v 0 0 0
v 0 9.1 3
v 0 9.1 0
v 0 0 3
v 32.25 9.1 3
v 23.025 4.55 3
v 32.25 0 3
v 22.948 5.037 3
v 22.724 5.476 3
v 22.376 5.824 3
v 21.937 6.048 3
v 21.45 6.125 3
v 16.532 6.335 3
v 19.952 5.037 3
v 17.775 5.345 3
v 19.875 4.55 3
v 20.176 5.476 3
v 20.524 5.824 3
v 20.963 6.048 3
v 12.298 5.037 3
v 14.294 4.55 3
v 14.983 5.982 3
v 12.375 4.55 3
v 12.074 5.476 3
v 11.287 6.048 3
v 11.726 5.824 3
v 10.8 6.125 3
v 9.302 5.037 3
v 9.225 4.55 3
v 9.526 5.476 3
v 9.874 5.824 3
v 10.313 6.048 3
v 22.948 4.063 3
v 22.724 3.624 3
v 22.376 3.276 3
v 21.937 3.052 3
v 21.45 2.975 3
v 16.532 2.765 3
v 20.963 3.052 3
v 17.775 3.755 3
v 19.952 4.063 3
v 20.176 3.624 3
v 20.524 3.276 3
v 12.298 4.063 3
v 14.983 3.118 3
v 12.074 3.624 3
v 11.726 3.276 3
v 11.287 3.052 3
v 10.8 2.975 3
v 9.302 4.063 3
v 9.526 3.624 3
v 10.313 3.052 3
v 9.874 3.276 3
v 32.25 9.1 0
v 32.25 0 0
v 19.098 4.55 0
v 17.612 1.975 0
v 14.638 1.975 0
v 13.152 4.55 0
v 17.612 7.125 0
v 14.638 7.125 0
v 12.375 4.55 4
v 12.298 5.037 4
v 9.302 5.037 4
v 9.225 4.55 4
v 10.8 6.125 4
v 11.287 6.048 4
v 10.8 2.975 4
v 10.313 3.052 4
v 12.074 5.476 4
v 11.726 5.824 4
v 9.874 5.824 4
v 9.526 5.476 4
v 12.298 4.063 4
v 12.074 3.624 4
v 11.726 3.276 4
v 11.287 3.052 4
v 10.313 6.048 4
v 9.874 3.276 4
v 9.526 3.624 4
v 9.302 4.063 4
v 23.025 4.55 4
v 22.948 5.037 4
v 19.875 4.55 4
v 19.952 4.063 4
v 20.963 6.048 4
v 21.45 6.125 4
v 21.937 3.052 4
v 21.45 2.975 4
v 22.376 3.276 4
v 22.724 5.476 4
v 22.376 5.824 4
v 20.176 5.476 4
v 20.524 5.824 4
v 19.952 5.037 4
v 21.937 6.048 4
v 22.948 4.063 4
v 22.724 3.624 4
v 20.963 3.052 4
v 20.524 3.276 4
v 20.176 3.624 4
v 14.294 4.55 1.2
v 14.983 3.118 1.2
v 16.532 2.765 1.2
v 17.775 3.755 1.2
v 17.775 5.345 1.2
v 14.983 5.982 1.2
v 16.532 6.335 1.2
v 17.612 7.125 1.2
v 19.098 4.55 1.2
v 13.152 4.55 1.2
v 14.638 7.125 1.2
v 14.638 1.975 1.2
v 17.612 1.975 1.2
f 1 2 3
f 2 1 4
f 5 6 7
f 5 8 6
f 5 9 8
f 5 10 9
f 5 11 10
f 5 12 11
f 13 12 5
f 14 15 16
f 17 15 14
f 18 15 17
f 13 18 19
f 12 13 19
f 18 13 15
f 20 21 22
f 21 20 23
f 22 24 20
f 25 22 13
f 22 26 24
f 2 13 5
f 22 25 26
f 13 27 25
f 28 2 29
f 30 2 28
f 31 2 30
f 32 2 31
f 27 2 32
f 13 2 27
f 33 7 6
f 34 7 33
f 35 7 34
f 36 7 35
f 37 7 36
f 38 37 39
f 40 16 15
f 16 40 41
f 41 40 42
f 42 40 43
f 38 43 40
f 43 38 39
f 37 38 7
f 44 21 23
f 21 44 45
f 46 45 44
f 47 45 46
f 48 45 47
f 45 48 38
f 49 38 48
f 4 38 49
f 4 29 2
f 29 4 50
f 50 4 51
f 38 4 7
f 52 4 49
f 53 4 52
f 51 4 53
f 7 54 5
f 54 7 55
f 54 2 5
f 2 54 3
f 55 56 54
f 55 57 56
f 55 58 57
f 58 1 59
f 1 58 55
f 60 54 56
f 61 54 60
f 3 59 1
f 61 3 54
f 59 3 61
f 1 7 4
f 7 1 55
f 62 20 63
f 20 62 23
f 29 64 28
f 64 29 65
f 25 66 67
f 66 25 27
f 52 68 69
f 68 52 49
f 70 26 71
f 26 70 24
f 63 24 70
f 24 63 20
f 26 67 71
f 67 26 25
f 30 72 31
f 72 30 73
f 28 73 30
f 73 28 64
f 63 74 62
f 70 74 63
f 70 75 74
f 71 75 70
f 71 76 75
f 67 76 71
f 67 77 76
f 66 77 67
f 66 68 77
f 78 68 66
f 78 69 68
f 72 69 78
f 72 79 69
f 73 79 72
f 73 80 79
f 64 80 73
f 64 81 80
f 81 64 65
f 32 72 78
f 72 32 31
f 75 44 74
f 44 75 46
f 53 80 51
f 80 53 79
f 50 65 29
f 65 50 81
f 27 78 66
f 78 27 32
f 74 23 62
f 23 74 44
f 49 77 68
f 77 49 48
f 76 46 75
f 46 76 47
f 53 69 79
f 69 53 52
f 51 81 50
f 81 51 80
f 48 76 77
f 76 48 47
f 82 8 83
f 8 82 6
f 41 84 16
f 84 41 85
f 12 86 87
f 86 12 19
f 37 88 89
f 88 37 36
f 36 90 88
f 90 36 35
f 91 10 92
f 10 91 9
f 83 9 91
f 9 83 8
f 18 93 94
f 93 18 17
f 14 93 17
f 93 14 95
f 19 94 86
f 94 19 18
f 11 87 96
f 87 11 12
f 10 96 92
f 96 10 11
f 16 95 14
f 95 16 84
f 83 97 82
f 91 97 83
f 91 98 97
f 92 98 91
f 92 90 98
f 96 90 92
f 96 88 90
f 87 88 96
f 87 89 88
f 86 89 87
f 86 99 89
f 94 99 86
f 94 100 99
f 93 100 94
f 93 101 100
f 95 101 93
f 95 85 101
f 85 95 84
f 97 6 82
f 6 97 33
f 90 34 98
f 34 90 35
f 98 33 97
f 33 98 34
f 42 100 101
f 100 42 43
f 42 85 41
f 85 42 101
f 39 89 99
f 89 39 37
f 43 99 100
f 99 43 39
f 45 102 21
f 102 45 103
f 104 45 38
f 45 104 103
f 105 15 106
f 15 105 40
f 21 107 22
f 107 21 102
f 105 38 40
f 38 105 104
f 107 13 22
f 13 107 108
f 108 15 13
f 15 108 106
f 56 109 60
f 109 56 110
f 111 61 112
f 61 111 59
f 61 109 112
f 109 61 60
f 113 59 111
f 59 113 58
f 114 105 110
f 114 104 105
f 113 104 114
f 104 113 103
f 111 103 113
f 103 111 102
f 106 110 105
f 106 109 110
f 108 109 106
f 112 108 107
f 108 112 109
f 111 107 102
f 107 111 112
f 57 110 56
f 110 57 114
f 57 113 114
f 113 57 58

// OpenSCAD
use <MCAD/polyholes.scad>;
// Reflow Oven Gen 2
// Mount for holding face plate nut in case cutout

mount_length = 32.25;
mount_width  =  9.10;
mount_height =  3.00;

mount_insert_length = 13.80;
mount_insert_d      =  3.15;
mount_insert_h      =  1.00;
mount_hole_d        =  3.30;
mount_nut_trap_d    =  5.15;
mount_nut_trap_h    =  2.20;

module hex_nut() {
    n = 6;  // hex nut
    cylinder(h = h, r = r / cos (180 / n), $fn = n);
}

difference() {
    union() {
        cube([mount_length, mount_width, mount_height]);
        translate([(mount_length - mount_insert_length + mount_insert_d) / 2.0, mount_width / 2.0, mount_height + mount_insert_h / 2.0]) cylinder(r = mount_insert_d / 2.0, h = mount_insert_h, center=true, $fn = 20);
        translate([(mount_length + mount_insert_length - mount_insert_d) / 2.0, mount_width / 2.0, mount_height + mount_insert_h / 2.0]) cylinder(r = mount_insert_d / 2.0, h = mount_insert_h, center=true, $fn = 20);
    }
    // mount holes
    translate([mount_length / 2.0, mount_width / 2.0, -1.0]) {
        polyhole(d = mount_hole_d, h = mount_height + 2.0);
        hex_nut(r = mount_nut_trap_d / 2.0, h = mount_nut_trap_h);
    }
}
